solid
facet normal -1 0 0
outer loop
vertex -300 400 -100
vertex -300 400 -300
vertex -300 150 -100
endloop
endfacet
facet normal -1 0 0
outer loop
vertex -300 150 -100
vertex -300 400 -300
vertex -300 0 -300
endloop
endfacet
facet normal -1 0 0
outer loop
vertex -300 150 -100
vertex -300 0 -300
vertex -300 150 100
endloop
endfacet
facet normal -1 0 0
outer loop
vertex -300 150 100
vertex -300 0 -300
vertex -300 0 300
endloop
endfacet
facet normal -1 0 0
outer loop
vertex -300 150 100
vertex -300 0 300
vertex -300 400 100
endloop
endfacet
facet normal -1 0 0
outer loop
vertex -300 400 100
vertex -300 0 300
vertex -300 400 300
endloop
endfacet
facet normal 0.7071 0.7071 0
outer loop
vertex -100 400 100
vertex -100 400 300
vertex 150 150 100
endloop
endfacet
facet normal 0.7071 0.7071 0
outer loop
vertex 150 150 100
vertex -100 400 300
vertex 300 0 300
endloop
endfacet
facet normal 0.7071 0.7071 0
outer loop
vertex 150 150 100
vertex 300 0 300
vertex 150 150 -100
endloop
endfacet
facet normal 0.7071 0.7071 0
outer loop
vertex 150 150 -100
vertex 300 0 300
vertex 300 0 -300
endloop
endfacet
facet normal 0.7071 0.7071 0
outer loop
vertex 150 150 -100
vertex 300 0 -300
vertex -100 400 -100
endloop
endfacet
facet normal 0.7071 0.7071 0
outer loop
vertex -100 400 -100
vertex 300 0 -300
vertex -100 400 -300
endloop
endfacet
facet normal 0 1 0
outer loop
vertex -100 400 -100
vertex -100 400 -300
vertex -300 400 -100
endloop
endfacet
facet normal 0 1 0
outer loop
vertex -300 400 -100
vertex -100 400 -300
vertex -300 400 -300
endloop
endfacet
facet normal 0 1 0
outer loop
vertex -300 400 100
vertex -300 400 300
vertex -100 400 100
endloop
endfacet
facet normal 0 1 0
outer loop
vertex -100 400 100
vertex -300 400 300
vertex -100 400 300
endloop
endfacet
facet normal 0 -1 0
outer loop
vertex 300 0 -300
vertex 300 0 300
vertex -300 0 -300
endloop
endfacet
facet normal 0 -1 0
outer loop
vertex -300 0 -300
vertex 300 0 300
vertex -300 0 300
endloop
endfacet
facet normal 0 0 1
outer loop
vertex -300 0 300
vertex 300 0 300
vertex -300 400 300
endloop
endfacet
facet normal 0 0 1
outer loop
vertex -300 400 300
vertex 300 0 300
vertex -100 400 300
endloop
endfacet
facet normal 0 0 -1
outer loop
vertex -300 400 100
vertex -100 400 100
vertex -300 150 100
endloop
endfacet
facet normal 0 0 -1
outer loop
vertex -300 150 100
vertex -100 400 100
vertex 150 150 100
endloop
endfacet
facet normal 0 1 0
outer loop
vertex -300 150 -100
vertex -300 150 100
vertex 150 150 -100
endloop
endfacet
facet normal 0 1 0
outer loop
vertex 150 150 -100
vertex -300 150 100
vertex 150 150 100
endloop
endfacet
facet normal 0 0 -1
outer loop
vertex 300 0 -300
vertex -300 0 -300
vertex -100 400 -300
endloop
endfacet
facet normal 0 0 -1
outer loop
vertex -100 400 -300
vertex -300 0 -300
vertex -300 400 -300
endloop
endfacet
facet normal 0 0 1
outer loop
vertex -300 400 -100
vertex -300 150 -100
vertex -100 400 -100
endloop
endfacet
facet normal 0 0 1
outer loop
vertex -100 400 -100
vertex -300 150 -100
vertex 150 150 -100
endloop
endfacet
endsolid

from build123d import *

# Parameters (mm, degrees)
BOSS_EXTRUDE1_DEPTH = 300
SKETCH2_W           = 600
SKETCH2_H           = 100
CUT_EXTRUDE1_DEPTH  = 250


with BuildPart() as part:
    # Sketch1 → Boss-Extrude1 (new body)
    with BuildSketch(Plane.XY):
        Polygon((-300, 400), (-300, 0), (300, 0), (-100, 400), align=None)
    boss_extrude1 = extrude(amount=BOSS_EXTRUDE1_DEPTH)

    # Sketch2 → Cut-Extrude1 (cut)
    with BuildSketch(Plane(origin=(0, 400, 0), x_dir=(1, 0, 0), z_dir=(0, 1, 0))):
        with Locations((0, -50)):
            Rectangle(SKETCH2_W, SKETCH2_H)
    cut_extrude1 = extrude(amount=-CUT_EXTRUDE1_DEPTH, mode=Mode.SUBTRACT)

    # Mirror1: Boss-Extrude1, Cut-Extrude1 across plane
    add(boss_extrude1.mirror(Plane.XY))
    add(cut_extrude1.mirror(Plane.XY), mode=Mode.SUBTRACT)


solid = part.part
